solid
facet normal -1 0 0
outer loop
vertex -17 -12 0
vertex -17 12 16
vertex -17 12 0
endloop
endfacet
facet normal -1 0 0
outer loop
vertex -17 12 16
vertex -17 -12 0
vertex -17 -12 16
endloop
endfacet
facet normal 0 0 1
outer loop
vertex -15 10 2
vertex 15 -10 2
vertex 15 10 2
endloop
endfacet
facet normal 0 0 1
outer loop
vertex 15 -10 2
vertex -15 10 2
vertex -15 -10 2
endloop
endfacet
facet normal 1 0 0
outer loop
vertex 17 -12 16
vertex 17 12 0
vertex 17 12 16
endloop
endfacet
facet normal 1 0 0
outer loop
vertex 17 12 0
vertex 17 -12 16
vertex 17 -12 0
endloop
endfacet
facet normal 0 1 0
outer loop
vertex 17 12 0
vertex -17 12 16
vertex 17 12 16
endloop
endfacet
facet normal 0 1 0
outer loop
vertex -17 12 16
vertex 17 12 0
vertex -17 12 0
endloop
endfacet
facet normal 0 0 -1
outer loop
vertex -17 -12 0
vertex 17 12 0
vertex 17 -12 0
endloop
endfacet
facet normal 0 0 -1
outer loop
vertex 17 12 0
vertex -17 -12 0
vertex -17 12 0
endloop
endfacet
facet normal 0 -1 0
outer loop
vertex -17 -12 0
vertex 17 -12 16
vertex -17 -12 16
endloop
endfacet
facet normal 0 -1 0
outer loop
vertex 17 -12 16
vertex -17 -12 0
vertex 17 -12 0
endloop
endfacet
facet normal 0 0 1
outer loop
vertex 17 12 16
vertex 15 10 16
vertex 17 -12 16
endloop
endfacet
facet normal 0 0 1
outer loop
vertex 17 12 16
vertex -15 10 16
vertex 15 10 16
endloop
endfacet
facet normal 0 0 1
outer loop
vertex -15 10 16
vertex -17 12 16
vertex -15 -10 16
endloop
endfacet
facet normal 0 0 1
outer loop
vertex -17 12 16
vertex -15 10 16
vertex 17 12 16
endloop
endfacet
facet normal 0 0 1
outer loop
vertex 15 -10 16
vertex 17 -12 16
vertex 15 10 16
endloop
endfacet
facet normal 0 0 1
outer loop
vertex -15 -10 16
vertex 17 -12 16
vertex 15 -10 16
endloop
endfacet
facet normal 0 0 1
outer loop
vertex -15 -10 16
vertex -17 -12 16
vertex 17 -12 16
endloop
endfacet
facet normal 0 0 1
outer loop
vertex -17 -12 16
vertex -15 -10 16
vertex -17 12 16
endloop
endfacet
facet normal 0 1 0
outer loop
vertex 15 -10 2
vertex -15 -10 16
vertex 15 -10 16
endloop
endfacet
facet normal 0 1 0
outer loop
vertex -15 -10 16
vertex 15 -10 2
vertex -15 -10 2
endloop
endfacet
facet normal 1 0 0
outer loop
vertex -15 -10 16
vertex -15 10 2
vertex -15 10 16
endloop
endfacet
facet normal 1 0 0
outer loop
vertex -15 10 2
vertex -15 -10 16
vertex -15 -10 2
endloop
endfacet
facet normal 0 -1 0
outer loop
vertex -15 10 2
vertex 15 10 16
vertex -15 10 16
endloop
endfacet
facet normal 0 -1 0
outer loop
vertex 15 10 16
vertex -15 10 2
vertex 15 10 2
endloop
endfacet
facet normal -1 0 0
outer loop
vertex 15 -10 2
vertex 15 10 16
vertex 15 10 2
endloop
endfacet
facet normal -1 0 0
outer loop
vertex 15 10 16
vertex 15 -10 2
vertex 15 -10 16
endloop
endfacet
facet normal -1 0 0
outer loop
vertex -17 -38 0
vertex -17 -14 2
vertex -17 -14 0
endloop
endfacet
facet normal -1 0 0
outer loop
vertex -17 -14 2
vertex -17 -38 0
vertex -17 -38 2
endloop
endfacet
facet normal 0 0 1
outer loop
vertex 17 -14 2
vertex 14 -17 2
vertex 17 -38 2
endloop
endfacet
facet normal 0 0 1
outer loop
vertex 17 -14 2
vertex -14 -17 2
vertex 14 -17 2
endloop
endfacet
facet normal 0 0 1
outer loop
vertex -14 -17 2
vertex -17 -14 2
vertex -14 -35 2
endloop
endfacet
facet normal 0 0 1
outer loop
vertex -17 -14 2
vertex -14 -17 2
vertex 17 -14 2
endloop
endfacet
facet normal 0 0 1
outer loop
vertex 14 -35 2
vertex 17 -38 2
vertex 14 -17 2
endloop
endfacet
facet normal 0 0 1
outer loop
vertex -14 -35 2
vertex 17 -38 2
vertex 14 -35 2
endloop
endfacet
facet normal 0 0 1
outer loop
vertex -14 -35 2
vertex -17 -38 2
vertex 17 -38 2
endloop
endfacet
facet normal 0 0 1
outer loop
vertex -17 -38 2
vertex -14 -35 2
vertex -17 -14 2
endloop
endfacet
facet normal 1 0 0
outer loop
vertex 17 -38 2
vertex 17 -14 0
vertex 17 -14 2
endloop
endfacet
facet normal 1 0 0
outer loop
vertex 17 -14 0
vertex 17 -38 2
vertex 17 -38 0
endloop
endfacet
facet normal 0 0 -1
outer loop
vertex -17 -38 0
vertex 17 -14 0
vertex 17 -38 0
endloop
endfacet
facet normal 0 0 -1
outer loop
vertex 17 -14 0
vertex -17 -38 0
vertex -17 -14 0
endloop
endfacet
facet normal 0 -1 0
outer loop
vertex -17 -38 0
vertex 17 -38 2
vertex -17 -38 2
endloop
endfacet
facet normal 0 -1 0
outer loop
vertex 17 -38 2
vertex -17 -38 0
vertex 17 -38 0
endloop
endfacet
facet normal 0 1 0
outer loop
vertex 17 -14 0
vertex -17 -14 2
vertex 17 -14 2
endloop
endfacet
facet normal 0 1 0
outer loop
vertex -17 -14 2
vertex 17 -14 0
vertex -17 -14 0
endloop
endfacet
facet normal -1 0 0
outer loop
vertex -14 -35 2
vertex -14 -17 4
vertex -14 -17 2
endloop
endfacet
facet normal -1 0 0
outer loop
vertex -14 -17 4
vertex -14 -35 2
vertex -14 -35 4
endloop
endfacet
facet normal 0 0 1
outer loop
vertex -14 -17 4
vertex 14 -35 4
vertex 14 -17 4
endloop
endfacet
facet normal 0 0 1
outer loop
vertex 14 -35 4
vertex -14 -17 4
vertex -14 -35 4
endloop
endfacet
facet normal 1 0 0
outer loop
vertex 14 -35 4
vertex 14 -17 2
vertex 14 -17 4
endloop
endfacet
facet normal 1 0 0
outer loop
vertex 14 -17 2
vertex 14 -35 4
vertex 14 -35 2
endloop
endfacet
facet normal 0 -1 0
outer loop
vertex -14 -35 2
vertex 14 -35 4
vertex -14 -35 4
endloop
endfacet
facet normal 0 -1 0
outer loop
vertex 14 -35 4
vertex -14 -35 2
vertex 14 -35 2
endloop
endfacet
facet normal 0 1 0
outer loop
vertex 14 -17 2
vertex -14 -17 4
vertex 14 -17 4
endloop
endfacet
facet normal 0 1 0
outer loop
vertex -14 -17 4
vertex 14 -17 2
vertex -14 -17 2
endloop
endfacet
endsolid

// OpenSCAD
module basicBox(innerX, innerY, innerZ, thickness) {
    translate([-innerX/2-thickness, -innerY/2-thickness, 0]) {
        cube([innerX+2*thickness, innerY+2*thickness, thickness]); // bottom
        cube([innerX+2*thickness, thickness, innerZ+3*thickness]); //front
        cube([thickness, innerY+2*thickness, innerZ+3*thickness]); // left
        translate([0, innerY+thickness, 0])
            cube([innerX+2*thickness, thickness, innerZ+3*thickness]); // back
        translate([innerX+thickness, 0, 0])
            cube([thickness, innerY+2*thickness, innerZ+3*thickness]); // right
    }
}

module basicLid(innerX, innerY, innerZ, thickness) {
    translate([-innerX/2-thickness, -innerY/2-thickness, 0]) {
        translate([0, -innerY-thickness-thickness-thickness, 0]) {
            cube([innerX+2*thickness, innerY+2*thickness, thickness]);
            translate([thickness+1, thickness+1, 0])
                cube([innerX-2, innerY-2, thickness*2]);
        }
    }
}

basicBox(30, 20, 10, 2);
basicLid(30, 20, 10, 2);
